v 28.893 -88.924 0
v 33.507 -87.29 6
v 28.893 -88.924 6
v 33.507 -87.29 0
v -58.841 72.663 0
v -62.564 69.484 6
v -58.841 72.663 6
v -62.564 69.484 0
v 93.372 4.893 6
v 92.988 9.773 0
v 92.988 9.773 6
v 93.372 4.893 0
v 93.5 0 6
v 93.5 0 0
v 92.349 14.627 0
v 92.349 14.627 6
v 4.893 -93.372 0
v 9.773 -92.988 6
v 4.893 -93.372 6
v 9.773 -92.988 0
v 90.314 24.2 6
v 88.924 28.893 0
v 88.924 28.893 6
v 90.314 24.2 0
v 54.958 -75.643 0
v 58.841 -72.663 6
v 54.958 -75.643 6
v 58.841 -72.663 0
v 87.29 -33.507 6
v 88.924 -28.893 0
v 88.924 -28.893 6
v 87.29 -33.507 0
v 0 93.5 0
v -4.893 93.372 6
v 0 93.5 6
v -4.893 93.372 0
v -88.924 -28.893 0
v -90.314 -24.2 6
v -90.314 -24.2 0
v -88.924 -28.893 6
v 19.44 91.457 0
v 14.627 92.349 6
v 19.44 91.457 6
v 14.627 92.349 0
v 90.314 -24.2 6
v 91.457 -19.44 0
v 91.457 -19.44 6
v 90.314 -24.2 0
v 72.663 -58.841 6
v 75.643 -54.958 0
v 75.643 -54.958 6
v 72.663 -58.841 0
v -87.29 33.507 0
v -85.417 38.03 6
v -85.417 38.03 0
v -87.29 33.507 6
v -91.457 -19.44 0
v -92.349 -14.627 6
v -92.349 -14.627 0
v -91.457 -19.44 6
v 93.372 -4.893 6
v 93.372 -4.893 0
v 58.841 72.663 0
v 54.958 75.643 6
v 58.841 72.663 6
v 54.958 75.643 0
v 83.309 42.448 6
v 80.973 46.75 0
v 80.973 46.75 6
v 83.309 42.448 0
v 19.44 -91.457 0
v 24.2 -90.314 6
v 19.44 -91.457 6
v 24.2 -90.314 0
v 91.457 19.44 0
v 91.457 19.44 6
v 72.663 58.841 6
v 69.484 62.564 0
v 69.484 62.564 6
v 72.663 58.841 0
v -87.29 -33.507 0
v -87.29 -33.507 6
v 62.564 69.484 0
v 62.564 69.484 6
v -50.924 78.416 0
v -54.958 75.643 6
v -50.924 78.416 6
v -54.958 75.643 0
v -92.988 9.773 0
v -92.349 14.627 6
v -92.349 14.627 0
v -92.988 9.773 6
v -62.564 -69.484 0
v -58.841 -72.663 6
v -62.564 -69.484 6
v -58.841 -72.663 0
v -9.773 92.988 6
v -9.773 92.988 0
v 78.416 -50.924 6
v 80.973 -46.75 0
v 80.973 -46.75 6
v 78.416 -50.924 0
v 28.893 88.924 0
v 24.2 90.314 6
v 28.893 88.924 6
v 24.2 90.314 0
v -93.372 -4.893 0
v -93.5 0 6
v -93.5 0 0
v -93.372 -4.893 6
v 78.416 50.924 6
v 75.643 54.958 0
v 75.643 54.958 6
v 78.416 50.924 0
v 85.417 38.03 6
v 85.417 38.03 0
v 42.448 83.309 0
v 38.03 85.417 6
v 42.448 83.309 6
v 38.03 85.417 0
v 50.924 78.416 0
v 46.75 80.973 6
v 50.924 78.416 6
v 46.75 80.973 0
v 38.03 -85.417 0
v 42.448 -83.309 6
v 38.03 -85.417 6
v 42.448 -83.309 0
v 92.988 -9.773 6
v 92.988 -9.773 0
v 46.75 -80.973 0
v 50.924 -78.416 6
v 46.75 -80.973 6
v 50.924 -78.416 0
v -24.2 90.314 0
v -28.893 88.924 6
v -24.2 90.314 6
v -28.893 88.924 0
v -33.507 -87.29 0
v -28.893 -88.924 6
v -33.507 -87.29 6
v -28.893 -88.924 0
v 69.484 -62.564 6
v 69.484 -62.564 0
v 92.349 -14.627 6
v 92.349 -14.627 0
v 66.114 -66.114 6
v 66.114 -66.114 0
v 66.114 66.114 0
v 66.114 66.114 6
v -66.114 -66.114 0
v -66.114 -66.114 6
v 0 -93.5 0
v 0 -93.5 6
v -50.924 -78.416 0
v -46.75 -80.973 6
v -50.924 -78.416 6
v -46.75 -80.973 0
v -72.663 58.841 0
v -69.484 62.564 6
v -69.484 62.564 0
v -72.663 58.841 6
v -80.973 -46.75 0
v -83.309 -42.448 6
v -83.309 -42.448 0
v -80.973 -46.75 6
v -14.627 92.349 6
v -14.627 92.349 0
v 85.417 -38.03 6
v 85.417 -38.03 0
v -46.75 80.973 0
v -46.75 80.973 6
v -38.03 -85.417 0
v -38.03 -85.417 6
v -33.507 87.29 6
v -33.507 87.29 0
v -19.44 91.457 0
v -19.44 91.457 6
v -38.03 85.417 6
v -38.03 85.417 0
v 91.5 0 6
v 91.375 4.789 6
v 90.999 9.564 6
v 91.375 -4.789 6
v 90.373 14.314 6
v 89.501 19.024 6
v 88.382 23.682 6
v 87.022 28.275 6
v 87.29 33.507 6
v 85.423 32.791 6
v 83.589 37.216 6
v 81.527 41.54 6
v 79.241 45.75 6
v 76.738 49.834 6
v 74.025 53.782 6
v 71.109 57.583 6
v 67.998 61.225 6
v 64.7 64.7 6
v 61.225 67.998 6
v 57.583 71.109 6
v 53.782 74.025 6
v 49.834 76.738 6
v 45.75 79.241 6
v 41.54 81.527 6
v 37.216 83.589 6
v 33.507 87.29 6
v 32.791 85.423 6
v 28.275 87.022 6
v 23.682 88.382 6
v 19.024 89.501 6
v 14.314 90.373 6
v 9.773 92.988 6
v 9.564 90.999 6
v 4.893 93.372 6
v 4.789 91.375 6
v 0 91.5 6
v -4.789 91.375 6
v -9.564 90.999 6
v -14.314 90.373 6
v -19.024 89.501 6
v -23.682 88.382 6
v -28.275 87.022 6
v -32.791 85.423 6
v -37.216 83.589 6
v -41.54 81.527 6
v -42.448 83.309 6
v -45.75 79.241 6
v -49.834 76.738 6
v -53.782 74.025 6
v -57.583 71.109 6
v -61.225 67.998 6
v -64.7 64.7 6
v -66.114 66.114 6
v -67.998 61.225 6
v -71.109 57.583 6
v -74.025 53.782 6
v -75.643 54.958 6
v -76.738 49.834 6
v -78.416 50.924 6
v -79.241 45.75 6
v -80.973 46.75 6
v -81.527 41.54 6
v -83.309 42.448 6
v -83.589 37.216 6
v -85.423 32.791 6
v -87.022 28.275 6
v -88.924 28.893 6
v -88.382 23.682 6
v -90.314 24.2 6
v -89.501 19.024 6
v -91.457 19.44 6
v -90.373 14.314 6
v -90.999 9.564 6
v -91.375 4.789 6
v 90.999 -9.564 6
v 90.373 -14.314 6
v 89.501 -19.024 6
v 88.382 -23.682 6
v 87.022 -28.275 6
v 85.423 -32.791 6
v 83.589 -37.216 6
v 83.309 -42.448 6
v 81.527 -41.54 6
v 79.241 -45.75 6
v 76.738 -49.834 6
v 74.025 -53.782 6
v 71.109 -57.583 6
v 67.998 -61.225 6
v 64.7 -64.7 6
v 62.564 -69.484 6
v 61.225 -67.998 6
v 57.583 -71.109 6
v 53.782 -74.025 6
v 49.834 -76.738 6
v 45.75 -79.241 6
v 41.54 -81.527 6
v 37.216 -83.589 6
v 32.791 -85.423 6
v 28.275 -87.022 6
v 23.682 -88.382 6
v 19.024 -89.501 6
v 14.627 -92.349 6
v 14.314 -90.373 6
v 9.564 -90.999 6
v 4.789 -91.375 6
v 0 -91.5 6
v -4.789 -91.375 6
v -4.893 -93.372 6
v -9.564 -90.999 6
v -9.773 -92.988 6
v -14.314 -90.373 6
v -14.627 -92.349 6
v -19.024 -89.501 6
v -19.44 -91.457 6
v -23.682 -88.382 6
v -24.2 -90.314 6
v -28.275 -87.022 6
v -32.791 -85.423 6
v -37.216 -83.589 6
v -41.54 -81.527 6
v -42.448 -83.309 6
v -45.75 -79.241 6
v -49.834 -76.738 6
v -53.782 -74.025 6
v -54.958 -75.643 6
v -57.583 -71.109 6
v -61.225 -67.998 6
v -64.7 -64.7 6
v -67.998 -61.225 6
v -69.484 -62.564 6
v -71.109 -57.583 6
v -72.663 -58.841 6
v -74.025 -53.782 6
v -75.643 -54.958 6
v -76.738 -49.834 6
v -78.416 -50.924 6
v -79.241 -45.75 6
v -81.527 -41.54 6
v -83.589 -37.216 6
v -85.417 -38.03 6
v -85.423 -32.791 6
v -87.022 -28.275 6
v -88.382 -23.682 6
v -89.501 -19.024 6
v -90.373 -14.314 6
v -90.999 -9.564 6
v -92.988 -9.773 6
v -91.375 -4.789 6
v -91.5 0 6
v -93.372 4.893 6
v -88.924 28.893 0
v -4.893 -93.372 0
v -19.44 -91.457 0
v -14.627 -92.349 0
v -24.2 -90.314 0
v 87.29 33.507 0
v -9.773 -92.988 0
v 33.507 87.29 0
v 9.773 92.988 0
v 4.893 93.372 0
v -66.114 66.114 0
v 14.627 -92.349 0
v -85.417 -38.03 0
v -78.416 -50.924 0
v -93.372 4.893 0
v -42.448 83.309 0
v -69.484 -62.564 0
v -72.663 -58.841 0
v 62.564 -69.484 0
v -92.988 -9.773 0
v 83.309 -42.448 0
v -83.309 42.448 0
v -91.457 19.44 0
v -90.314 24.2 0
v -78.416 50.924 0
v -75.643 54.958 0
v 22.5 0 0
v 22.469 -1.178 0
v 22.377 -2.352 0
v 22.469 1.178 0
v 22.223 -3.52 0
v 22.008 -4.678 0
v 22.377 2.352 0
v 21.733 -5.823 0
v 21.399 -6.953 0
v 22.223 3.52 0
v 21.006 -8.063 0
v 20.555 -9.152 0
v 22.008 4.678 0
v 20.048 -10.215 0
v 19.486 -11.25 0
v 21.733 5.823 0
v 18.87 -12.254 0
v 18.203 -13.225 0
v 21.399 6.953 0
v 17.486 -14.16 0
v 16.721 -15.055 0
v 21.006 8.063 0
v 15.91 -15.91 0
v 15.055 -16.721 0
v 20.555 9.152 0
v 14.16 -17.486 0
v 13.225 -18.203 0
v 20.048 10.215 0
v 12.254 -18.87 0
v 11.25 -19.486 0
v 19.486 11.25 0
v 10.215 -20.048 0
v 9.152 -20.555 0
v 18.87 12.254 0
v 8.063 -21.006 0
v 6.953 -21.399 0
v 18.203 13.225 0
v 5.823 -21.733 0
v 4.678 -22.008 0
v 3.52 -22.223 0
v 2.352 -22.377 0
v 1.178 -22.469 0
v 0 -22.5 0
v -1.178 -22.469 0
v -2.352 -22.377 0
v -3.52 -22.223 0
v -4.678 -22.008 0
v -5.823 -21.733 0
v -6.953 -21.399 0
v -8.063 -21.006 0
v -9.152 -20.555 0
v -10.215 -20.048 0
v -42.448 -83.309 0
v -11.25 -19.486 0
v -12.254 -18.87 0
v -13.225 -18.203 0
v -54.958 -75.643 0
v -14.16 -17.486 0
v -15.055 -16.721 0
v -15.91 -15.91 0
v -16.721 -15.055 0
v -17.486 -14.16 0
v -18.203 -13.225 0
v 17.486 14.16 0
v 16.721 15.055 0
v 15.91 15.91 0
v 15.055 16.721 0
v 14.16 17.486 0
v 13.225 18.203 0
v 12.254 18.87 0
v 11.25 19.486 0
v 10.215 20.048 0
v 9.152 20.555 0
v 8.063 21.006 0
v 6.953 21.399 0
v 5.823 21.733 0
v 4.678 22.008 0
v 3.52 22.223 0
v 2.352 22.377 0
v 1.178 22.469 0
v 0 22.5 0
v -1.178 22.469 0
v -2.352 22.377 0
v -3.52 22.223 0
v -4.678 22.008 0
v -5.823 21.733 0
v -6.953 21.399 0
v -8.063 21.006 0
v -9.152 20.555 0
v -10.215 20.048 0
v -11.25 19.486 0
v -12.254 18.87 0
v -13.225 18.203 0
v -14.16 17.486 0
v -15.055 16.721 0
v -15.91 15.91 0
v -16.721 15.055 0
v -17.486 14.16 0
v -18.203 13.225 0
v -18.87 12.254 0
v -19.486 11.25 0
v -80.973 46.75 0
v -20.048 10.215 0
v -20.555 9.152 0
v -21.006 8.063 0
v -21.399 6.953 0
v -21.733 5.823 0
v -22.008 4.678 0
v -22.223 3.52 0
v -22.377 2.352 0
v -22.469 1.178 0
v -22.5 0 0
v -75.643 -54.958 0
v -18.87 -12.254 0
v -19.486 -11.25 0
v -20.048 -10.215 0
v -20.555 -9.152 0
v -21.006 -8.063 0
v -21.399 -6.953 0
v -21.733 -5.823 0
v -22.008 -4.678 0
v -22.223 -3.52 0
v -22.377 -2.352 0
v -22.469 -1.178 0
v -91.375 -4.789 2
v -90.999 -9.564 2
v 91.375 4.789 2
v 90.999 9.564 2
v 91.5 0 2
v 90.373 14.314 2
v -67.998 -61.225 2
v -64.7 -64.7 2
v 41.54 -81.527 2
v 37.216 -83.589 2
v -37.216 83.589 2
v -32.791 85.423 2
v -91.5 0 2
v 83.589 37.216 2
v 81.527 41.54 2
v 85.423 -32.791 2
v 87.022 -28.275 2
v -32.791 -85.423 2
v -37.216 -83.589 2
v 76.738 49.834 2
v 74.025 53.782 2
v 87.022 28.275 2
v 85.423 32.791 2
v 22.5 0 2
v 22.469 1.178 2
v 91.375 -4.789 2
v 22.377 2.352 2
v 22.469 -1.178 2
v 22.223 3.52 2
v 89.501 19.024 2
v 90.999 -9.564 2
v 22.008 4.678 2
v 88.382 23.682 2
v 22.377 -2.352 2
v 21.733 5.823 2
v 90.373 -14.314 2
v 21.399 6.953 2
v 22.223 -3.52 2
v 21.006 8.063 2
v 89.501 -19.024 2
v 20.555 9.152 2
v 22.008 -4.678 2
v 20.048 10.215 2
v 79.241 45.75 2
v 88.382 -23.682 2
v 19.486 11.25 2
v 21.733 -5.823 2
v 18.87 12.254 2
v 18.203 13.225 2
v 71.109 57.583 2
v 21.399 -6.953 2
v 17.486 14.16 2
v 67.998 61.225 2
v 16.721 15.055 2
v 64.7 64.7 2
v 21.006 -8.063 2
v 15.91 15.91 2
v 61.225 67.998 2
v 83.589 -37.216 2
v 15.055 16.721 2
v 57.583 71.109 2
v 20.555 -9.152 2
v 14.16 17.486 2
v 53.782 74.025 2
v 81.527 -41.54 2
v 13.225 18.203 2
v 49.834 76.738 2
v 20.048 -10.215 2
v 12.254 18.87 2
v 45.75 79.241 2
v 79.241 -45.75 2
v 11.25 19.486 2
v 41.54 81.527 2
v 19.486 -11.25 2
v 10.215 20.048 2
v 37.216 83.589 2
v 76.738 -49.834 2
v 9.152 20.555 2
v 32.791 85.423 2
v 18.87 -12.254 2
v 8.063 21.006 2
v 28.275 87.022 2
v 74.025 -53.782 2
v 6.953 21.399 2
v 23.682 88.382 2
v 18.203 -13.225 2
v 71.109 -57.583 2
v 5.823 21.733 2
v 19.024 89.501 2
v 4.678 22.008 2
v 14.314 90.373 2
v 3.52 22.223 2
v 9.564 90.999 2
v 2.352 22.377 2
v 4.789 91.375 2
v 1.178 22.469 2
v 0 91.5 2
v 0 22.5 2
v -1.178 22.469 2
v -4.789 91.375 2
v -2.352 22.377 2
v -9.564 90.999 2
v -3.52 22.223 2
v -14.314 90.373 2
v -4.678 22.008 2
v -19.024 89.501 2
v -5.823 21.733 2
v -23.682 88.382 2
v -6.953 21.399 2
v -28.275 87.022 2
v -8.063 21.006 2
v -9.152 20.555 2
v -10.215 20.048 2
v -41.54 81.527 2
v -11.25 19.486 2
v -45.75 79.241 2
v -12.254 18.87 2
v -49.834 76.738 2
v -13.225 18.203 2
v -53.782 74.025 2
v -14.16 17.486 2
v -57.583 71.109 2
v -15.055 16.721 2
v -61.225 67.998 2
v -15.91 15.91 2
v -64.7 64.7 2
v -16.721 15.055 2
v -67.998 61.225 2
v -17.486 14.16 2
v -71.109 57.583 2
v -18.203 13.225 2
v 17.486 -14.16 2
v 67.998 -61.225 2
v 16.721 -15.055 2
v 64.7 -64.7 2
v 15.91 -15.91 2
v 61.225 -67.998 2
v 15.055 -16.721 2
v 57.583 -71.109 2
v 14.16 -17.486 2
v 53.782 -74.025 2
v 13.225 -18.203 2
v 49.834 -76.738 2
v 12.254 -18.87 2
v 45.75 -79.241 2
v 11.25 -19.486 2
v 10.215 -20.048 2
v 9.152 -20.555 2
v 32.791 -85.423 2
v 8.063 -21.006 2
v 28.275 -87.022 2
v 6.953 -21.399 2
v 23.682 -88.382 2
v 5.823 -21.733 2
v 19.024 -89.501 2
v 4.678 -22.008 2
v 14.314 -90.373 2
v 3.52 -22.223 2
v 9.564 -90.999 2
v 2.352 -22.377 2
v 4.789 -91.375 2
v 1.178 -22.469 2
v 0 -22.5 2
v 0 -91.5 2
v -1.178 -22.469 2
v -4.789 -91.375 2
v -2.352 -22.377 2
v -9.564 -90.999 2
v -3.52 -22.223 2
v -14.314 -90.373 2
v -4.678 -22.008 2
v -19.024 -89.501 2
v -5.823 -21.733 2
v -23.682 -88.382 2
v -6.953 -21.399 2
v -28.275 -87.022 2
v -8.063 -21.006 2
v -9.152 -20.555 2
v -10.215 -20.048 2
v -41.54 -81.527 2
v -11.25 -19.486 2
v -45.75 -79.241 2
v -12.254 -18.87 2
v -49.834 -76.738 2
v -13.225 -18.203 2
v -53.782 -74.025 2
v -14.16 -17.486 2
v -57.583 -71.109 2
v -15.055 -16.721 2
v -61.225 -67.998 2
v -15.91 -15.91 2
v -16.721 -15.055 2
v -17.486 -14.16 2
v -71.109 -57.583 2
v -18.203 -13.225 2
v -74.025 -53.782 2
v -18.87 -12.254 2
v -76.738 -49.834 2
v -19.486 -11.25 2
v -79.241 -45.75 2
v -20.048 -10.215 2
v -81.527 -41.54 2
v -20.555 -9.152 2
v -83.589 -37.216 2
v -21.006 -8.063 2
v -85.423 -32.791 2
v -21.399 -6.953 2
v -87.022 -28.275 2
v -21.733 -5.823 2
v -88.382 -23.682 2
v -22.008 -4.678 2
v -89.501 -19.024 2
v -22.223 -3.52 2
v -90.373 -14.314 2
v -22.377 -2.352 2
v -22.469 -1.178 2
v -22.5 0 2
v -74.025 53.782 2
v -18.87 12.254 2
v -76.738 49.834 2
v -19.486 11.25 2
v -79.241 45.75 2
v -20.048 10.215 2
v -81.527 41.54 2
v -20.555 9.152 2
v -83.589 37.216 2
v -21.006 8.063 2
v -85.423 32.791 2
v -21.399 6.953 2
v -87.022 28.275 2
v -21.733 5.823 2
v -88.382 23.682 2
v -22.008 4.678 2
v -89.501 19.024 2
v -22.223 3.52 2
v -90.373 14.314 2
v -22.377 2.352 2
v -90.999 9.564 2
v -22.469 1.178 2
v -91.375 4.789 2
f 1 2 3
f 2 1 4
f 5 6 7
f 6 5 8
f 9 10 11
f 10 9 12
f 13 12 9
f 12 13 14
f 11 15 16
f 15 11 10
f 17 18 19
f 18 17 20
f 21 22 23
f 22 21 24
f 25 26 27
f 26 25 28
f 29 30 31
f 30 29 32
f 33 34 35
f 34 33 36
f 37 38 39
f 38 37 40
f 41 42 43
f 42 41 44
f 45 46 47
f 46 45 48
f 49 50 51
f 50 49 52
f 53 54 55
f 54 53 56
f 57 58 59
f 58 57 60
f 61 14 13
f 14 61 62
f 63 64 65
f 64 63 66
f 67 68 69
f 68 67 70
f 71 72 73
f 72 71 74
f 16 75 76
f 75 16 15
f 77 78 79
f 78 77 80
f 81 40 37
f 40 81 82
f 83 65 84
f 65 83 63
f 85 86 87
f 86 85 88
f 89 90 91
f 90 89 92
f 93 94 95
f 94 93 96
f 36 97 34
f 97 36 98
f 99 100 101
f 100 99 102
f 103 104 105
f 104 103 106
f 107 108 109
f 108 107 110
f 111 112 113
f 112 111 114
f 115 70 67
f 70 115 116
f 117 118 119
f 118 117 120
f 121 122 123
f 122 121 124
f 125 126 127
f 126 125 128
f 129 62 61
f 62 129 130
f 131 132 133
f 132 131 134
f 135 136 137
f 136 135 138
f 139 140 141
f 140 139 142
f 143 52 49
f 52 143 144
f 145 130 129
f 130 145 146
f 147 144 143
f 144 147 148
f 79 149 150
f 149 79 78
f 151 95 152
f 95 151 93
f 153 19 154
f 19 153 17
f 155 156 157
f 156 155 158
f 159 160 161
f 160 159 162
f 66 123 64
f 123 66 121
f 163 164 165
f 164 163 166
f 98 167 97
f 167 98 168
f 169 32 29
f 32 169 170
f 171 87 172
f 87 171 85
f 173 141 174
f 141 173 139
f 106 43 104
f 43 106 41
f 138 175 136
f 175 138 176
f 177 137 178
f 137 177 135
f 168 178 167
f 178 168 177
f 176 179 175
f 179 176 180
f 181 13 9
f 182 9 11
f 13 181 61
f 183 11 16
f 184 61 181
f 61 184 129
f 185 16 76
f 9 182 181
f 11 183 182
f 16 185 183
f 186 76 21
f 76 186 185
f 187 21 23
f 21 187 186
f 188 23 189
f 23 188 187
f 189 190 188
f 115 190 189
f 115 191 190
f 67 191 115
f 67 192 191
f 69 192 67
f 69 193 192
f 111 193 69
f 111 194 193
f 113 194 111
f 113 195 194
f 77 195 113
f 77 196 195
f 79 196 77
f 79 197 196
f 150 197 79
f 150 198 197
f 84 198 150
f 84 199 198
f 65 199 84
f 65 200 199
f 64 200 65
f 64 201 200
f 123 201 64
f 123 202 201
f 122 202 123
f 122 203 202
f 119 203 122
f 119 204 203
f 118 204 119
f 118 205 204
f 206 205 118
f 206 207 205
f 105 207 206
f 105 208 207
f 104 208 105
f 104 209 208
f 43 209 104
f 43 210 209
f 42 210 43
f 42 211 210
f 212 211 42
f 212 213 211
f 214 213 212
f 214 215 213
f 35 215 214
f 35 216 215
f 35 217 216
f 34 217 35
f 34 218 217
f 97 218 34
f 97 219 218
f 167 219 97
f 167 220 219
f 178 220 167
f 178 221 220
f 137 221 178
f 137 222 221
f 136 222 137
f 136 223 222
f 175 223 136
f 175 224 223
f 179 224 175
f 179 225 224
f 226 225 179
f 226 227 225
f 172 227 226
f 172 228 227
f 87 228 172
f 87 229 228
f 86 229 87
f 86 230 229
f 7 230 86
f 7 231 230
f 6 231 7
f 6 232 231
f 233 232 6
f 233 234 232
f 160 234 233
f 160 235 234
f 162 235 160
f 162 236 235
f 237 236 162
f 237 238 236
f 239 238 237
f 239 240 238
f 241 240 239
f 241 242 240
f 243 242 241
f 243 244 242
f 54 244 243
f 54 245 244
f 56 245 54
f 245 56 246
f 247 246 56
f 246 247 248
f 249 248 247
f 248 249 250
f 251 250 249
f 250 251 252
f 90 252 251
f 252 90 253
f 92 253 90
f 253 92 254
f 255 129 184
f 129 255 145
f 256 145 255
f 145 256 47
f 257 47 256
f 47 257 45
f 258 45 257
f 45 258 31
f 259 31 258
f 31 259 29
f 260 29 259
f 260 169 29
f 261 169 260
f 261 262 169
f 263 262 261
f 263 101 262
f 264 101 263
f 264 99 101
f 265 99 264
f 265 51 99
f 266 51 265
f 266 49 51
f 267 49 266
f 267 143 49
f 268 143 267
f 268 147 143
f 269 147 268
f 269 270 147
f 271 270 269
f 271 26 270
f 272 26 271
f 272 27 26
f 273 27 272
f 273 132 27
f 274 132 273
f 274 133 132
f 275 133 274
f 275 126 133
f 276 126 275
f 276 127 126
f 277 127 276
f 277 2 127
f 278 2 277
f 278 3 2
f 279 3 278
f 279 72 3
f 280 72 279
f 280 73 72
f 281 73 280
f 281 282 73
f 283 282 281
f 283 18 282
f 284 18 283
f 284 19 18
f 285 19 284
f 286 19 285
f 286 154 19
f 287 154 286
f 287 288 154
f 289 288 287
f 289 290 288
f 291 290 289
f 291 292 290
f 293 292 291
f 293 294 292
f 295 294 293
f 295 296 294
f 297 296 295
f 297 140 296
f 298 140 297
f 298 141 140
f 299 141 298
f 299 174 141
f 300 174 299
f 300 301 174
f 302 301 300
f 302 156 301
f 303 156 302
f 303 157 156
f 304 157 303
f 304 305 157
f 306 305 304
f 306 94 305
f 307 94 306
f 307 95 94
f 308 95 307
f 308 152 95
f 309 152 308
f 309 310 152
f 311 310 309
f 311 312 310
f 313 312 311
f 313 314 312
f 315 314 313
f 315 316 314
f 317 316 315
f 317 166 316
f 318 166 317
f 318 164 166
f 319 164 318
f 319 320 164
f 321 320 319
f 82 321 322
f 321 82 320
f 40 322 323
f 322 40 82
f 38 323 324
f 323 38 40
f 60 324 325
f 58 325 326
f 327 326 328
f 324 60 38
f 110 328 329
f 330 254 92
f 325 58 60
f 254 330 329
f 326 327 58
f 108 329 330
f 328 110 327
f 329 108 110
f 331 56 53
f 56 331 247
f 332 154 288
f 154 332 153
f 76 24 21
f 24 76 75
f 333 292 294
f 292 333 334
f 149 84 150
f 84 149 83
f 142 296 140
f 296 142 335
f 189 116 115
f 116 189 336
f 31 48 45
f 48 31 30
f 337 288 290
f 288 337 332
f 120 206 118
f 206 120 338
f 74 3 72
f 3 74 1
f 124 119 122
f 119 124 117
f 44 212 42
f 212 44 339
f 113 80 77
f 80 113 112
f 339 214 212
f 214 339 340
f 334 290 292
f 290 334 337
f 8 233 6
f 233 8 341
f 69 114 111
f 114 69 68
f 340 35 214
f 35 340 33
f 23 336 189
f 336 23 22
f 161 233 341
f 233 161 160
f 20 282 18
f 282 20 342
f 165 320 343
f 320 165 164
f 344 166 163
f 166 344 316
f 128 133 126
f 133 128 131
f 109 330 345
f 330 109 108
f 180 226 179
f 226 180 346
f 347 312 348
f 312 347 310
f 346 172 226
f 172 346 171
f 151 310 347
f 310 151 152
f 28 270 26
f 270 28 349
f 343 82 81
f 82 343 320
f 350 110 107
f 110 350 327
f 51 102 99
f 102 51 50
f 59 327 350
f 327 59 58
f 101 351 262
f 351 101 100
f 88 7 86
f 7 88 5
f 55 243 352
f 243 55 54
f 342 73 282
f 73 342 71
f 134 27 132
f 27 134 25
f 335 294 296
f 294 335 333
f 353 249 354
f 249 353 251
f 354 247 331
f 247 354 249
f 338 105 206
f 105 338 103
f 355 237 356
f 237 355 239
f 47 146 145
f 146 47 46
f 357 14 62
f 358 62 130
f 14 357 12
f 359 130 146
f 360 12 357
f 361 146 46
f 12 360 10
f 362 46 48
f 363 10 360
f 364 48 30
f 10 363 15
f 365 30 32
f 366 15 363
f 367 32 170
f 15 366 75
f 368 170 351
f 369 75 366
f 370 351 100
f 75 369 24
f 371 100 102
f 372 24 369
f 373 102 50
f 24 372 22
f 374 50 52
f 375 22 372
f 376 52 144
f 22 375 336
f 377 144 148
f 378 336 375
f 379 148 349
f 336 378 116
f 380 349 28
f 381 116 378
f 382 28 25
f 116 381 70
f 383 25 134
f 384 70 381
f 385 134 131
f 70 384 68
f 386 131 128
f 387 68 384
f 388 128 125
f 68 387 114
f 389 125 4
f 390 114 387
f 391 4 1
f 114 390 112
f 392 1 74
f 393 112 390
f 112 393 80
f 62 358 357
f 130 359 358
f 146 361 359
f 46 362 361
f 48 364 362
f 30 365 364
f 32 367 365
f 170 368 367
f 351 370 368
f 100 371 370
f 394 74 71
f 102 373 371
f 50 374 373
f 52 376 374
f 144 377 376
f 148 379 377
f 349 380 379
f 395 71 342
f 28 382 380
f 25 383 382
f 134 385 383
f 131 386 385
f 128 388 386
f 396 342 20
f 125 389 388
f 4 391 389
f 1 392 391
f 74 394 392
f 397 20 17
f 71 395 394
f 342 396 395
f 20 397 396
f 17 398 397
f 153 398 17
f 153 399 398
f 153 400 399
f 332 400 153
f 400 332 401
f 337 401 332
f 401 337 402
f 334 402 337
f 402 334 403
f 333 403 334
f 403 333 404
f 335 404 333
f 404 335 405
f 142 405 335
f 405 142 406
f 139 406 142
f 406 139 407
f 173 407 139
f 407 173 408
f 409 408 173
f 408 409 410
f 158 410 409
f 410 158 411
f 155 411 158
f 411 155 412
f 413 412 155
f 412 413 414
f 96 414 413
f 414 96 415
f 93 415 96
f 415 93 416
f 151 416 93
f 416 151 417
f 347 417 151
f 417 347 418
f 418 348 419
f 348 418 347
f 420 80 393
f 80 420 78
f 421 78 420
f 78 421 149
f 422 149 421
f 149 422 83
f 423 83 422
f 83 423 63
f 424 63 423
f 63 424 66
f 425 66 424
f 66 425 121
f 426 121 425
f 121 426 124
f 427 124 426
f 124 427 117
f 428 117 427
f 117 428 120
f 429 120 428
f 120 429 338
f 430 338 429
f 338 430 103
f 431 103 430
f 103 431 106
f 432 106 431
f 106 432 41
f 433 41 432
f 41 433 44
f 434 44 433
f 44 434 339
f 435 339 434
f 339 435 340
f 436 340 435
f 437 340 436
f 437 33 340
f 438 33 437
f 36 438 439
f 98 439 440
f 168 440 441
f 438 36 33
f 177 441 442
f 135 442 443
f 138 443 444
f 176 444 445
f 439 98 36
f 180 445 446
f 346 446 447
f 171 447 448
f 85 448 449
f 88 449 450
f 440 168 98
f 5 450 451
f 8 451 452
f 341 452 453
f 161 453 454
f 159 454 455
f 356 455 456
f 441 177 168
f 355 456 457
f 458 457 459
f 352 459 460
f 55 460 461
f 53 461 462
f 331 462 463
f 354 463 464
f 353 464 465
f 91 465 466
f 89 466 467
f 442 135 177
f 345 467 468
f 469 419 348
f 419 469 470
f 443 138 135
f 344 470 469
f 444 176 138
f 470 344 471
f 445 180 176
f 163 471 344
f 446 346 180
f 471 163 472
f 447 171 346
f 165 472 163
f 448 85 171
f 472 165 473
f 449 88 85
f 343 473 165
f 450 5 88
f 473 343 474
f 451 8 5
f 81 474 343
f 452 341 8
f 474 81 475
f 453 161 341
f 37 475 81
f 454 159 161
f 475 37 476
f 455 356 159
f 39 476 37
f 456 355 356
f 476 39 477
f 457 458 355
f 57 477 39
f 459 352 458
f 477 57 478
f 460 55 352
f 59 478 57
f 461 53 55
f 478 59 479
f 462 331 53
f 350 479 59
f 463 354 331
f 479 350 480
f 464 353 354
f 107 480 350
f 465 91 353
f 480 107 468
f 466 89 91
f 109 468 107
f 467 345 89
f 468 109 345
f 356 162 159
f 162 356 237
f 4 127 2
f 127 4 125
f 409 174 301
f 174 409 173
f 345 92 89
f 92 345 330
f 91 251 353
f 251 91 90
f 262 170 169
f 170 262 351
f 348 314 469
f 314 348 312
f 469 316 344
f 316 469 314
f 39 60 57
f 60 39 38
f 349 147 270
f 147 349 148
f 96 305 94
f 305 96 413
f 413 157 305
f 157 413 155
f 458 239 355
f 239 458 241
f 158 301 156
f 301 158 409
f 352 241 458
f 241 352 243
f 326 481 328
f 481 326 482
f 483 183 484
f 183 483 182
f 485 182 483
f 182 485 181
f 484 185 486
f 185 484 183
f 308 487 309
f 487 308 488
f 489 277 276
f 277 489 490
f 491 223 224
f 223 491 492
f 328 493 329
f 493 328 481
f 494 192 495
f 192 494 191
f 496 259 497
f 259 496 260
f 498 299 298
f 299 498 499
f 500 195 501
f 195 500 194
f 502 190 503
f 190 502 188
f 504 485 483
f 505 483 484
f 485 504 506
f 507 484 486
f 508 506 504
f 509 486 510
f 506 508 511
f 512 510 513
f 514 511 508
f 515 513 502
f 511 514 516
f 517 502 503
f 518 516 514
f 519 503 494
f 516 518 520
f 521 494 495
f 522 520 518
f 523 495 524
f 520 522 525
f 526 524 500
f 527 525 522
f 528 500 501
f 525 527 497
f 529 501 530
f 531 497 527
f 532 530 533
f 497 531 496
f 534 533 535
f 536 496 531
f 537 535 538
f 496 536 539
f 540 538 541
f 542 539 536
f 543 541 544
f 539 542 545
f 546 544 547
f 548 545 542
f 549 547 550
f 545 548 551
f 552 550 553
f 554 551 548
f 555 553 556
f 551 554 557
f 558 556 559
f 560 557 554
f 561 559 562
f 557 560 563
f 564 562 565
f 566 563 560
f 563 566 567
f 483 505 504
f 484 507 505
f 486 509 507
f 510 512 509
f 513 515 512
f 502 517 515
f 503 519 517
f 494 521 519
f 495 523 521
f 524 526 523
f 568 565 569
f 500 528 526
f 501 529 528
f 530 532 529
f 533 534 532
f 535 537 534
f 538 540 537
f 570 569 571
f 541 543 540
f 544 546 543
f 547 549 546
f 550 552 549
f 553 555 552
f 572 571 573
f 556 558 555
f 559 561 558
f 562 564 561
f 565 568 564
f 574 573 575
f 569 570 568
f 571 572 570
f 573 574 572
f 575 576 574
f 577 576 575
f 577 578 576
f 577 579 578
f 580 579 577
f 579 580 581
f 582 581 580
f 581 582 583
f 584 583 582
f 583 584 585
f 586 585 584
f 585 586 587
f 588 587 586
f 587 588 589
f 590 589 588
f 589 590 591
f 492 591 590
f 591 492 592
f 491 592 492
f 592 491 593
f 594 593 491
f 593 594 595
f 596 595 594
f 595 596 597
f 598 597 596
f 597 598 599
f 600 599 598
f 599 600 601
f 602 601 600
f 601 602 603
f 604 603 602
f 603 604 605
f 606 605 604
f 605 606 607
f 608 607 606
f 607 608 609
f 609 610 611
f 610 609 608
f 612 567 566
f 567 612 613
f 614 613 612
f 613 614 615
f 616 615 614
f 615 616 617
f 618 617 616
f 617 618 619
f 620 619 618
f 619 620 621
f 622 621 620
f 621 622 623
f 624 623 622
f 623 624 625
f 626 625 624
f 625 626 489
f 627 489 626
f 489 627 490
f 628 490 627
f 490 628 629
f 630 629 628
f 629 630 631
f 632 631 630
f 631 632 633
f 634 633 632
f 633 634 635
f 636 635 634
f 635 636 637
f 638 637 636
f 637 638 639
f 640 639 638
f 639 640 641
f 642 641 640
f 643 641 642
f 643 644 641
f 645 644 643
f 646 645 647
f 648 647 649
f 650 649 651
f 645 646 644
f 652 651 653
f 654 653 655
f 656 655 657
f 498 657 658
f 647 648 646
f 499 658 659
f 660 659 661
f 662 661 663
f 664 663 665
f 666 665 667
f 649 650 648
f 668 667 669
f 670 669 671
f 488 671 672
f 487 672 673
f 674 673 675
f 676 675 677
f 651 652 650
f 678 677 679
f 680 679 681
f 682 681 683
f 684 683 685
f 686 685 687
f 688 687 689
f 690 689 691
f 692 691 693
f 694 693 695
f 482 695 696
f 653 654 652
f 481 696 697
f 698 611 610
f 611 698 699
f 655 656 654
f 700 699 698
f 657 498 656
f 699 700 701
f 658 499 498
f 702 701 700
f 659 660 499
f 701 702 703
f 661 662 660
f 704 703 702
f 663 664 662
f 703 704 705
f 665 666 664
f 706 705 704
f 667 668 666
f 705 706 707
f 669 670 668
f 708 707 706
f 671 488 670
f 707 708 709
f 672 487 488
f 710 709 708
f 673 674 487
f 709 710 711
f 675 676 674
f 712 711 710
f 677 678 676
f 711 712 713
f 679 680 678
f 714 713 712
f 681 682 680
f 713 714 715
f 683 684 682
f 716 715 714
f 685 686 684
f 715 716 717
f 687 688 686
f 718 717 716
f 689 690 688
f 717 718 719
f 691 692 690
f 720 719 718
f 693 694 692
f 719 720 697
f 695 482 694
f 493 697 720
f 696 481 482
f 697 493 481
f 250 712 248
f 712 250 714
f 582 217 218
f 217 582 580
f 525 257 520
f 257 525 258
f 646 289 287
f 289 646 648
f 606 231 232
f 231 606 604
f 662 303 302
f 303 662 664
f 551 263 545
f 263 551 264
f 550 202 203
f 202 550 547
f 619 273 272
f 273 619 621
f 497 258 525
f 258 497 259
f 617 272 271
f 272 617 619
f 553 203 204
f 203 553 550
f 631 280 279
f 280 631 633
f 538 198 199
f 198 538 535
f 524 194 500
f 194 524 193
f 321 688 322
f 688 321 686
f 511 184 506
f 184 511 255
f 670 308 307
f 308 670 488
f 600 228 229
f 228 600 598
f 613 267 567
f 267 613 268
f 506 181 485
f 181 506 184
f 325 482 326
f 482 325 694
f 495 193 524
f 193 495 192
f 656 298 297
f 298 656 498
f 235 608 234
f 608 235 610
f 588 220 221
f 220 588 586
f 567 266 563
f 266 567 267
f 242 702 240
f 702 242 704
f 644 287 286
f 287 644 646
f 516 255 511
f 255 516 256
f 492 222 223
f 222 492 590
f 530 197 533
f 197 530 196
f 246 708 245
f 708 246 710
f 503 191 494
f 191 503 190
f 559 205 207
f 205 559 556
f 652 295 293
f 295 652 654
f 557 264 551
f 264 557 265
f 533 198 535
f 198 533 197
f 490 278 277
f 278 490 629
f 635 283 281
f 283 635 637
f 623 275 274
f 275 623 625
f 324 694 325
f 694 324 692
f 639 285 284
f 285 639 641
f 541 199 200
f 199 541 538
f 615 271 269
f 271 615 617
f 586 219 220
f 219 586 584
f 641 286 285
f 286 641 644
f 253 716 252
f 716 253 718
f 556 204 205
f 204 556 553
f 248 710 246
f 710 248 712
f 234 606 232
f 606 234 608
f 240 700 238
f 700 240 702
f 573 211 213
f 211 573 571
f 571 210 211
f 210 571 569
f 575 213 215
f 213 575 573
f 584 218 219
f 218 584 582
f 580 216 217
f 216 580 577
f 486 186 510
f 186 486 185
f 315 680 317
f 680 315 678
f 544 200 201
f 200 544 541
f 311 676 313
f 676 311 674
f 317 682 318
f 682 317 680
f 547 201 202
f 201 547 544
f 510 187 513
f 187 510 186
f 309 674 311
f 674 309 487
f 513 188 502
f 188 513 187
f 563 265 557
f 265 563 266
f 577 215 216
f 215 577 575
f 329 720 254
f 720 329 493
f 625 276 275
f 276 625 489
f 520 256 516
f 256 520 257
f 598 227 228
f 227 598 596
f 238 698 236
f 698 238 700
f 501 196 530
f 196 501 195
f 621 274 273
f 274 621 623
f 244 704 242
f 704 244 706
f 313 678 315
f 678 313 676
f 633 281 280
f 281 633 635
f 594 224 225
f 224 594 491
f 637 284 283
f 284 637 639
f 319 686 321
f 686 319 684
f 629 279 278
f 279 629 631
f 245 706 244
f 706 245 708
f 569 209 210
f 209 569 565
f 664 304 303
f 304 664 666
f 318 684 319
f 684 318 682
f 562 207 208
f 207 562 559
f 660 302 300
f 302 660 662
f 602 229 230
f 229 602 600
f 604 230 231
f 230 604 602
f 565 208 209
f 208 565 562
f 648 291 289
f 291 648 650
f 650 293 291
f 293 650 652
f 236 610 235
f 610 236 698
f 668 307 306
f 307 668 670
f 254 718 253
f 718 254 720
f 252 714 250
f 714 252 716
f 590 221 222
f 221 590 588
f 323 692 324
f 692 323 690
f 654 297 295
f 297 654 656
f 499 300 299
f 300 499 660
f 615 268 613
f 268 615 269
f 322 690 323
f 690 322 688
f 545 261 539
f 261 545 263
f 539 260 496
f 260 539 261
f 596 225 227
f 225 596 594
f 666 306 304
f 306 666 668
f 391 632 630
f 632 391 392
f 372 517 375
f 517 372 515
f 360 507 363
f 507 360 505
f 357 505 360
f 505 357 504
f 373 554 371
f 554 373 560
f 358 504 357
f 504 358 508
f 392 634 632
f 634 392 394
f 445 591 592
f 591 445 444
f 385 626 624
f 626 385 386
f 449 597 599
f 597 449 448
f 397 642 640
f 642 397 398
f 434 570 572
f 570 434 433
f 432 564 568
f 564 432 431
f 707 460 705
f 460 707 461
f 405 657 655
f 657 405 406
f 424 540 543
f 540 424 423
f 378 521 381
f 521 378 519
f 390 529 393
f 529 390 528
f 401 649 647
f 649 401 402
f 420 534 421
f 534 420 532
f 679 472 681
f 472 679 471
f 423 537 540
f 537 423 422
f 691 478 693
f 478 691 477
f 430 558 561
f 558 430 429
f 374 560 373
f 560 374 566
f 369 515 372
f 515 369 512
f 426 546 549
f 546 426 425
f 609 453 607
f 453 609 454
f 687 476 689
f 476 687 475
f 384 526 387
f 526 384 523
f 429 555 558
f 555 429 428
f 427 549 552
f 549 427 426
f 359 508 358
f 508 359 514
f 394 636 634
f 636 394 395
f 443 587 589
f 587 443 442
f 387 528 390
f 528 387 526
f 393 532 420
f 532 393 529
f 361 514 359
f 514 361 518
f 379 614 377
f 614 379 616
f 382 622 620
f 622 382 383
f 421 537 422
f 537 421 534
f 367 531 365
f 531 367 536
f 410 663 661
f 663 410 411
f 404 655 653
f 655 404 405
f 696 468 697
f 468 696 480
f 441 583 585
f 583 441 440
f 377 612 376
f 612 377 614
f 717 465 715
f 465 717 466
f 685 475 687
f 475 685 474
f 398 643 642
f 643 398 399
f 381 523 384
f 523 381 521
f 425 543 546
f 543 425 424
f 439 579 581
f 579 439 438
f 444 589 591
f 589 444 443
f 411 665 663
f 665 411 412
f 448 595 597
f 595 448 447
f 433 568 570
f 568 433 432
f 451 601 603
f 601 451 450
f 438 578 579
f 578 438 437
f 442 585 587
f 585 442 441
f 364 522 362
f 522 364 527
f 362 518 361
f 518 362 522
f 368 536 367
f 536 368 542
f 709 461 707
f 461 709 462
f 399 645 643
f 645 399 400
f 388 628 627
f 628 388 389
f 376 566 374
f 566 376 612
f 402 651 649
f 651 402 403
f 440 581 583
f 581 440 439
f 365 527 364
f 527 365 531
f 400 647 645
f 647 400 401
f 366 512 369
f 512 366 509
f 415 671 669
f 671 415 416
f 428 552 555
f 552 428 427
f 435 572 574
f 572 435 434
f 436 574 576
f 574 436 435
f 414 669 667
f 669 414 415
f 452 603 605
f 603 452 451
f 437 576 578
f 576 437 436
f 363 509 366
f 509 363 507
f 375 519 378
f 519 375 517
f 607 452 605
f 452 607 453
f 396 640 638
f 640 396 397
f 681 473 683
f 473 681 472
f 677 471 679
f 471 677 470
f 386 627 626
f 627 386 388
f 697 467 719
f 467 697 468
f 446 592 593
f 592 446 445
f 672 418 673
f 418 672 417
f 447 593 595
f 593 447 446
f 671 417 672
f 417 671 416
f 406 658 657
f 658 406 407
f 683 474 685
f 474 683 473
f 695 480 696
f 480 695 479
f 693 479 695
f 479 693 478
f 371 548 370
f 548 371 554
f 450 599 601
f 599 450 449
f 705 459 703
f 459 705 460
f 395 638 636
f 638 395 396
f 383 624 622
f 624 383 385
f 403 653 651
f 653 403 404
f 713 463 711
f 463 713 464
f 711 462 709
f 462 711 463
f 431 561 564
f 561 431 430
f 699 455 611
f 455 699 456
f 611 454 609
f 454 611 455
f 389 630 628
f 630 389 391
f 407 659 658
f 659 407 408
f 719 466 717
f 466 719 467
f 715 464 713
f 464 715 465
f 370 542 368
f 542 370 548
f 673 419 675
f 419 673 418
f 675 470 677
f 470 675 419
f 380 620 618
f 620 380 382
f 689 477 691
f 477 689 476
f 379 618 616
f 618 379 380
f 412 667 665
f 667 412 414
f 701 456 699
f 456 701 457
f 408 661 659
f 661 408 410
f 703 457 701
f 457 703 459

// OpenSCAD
outer_diameter = 183;
inner_diameter =  45;
wall           =   2;
height         =   6;
$fn            =  120;

difference() {
    cylinder(h = height, d = outer_diameter + 2*wall);
    
    translate([0, 0, wall])
    cylinder(h = height+1, d = outer_diameter);

    translate([0, 0, -1])
    cylinder(h = wall+4, d=inner_diameter);
}
